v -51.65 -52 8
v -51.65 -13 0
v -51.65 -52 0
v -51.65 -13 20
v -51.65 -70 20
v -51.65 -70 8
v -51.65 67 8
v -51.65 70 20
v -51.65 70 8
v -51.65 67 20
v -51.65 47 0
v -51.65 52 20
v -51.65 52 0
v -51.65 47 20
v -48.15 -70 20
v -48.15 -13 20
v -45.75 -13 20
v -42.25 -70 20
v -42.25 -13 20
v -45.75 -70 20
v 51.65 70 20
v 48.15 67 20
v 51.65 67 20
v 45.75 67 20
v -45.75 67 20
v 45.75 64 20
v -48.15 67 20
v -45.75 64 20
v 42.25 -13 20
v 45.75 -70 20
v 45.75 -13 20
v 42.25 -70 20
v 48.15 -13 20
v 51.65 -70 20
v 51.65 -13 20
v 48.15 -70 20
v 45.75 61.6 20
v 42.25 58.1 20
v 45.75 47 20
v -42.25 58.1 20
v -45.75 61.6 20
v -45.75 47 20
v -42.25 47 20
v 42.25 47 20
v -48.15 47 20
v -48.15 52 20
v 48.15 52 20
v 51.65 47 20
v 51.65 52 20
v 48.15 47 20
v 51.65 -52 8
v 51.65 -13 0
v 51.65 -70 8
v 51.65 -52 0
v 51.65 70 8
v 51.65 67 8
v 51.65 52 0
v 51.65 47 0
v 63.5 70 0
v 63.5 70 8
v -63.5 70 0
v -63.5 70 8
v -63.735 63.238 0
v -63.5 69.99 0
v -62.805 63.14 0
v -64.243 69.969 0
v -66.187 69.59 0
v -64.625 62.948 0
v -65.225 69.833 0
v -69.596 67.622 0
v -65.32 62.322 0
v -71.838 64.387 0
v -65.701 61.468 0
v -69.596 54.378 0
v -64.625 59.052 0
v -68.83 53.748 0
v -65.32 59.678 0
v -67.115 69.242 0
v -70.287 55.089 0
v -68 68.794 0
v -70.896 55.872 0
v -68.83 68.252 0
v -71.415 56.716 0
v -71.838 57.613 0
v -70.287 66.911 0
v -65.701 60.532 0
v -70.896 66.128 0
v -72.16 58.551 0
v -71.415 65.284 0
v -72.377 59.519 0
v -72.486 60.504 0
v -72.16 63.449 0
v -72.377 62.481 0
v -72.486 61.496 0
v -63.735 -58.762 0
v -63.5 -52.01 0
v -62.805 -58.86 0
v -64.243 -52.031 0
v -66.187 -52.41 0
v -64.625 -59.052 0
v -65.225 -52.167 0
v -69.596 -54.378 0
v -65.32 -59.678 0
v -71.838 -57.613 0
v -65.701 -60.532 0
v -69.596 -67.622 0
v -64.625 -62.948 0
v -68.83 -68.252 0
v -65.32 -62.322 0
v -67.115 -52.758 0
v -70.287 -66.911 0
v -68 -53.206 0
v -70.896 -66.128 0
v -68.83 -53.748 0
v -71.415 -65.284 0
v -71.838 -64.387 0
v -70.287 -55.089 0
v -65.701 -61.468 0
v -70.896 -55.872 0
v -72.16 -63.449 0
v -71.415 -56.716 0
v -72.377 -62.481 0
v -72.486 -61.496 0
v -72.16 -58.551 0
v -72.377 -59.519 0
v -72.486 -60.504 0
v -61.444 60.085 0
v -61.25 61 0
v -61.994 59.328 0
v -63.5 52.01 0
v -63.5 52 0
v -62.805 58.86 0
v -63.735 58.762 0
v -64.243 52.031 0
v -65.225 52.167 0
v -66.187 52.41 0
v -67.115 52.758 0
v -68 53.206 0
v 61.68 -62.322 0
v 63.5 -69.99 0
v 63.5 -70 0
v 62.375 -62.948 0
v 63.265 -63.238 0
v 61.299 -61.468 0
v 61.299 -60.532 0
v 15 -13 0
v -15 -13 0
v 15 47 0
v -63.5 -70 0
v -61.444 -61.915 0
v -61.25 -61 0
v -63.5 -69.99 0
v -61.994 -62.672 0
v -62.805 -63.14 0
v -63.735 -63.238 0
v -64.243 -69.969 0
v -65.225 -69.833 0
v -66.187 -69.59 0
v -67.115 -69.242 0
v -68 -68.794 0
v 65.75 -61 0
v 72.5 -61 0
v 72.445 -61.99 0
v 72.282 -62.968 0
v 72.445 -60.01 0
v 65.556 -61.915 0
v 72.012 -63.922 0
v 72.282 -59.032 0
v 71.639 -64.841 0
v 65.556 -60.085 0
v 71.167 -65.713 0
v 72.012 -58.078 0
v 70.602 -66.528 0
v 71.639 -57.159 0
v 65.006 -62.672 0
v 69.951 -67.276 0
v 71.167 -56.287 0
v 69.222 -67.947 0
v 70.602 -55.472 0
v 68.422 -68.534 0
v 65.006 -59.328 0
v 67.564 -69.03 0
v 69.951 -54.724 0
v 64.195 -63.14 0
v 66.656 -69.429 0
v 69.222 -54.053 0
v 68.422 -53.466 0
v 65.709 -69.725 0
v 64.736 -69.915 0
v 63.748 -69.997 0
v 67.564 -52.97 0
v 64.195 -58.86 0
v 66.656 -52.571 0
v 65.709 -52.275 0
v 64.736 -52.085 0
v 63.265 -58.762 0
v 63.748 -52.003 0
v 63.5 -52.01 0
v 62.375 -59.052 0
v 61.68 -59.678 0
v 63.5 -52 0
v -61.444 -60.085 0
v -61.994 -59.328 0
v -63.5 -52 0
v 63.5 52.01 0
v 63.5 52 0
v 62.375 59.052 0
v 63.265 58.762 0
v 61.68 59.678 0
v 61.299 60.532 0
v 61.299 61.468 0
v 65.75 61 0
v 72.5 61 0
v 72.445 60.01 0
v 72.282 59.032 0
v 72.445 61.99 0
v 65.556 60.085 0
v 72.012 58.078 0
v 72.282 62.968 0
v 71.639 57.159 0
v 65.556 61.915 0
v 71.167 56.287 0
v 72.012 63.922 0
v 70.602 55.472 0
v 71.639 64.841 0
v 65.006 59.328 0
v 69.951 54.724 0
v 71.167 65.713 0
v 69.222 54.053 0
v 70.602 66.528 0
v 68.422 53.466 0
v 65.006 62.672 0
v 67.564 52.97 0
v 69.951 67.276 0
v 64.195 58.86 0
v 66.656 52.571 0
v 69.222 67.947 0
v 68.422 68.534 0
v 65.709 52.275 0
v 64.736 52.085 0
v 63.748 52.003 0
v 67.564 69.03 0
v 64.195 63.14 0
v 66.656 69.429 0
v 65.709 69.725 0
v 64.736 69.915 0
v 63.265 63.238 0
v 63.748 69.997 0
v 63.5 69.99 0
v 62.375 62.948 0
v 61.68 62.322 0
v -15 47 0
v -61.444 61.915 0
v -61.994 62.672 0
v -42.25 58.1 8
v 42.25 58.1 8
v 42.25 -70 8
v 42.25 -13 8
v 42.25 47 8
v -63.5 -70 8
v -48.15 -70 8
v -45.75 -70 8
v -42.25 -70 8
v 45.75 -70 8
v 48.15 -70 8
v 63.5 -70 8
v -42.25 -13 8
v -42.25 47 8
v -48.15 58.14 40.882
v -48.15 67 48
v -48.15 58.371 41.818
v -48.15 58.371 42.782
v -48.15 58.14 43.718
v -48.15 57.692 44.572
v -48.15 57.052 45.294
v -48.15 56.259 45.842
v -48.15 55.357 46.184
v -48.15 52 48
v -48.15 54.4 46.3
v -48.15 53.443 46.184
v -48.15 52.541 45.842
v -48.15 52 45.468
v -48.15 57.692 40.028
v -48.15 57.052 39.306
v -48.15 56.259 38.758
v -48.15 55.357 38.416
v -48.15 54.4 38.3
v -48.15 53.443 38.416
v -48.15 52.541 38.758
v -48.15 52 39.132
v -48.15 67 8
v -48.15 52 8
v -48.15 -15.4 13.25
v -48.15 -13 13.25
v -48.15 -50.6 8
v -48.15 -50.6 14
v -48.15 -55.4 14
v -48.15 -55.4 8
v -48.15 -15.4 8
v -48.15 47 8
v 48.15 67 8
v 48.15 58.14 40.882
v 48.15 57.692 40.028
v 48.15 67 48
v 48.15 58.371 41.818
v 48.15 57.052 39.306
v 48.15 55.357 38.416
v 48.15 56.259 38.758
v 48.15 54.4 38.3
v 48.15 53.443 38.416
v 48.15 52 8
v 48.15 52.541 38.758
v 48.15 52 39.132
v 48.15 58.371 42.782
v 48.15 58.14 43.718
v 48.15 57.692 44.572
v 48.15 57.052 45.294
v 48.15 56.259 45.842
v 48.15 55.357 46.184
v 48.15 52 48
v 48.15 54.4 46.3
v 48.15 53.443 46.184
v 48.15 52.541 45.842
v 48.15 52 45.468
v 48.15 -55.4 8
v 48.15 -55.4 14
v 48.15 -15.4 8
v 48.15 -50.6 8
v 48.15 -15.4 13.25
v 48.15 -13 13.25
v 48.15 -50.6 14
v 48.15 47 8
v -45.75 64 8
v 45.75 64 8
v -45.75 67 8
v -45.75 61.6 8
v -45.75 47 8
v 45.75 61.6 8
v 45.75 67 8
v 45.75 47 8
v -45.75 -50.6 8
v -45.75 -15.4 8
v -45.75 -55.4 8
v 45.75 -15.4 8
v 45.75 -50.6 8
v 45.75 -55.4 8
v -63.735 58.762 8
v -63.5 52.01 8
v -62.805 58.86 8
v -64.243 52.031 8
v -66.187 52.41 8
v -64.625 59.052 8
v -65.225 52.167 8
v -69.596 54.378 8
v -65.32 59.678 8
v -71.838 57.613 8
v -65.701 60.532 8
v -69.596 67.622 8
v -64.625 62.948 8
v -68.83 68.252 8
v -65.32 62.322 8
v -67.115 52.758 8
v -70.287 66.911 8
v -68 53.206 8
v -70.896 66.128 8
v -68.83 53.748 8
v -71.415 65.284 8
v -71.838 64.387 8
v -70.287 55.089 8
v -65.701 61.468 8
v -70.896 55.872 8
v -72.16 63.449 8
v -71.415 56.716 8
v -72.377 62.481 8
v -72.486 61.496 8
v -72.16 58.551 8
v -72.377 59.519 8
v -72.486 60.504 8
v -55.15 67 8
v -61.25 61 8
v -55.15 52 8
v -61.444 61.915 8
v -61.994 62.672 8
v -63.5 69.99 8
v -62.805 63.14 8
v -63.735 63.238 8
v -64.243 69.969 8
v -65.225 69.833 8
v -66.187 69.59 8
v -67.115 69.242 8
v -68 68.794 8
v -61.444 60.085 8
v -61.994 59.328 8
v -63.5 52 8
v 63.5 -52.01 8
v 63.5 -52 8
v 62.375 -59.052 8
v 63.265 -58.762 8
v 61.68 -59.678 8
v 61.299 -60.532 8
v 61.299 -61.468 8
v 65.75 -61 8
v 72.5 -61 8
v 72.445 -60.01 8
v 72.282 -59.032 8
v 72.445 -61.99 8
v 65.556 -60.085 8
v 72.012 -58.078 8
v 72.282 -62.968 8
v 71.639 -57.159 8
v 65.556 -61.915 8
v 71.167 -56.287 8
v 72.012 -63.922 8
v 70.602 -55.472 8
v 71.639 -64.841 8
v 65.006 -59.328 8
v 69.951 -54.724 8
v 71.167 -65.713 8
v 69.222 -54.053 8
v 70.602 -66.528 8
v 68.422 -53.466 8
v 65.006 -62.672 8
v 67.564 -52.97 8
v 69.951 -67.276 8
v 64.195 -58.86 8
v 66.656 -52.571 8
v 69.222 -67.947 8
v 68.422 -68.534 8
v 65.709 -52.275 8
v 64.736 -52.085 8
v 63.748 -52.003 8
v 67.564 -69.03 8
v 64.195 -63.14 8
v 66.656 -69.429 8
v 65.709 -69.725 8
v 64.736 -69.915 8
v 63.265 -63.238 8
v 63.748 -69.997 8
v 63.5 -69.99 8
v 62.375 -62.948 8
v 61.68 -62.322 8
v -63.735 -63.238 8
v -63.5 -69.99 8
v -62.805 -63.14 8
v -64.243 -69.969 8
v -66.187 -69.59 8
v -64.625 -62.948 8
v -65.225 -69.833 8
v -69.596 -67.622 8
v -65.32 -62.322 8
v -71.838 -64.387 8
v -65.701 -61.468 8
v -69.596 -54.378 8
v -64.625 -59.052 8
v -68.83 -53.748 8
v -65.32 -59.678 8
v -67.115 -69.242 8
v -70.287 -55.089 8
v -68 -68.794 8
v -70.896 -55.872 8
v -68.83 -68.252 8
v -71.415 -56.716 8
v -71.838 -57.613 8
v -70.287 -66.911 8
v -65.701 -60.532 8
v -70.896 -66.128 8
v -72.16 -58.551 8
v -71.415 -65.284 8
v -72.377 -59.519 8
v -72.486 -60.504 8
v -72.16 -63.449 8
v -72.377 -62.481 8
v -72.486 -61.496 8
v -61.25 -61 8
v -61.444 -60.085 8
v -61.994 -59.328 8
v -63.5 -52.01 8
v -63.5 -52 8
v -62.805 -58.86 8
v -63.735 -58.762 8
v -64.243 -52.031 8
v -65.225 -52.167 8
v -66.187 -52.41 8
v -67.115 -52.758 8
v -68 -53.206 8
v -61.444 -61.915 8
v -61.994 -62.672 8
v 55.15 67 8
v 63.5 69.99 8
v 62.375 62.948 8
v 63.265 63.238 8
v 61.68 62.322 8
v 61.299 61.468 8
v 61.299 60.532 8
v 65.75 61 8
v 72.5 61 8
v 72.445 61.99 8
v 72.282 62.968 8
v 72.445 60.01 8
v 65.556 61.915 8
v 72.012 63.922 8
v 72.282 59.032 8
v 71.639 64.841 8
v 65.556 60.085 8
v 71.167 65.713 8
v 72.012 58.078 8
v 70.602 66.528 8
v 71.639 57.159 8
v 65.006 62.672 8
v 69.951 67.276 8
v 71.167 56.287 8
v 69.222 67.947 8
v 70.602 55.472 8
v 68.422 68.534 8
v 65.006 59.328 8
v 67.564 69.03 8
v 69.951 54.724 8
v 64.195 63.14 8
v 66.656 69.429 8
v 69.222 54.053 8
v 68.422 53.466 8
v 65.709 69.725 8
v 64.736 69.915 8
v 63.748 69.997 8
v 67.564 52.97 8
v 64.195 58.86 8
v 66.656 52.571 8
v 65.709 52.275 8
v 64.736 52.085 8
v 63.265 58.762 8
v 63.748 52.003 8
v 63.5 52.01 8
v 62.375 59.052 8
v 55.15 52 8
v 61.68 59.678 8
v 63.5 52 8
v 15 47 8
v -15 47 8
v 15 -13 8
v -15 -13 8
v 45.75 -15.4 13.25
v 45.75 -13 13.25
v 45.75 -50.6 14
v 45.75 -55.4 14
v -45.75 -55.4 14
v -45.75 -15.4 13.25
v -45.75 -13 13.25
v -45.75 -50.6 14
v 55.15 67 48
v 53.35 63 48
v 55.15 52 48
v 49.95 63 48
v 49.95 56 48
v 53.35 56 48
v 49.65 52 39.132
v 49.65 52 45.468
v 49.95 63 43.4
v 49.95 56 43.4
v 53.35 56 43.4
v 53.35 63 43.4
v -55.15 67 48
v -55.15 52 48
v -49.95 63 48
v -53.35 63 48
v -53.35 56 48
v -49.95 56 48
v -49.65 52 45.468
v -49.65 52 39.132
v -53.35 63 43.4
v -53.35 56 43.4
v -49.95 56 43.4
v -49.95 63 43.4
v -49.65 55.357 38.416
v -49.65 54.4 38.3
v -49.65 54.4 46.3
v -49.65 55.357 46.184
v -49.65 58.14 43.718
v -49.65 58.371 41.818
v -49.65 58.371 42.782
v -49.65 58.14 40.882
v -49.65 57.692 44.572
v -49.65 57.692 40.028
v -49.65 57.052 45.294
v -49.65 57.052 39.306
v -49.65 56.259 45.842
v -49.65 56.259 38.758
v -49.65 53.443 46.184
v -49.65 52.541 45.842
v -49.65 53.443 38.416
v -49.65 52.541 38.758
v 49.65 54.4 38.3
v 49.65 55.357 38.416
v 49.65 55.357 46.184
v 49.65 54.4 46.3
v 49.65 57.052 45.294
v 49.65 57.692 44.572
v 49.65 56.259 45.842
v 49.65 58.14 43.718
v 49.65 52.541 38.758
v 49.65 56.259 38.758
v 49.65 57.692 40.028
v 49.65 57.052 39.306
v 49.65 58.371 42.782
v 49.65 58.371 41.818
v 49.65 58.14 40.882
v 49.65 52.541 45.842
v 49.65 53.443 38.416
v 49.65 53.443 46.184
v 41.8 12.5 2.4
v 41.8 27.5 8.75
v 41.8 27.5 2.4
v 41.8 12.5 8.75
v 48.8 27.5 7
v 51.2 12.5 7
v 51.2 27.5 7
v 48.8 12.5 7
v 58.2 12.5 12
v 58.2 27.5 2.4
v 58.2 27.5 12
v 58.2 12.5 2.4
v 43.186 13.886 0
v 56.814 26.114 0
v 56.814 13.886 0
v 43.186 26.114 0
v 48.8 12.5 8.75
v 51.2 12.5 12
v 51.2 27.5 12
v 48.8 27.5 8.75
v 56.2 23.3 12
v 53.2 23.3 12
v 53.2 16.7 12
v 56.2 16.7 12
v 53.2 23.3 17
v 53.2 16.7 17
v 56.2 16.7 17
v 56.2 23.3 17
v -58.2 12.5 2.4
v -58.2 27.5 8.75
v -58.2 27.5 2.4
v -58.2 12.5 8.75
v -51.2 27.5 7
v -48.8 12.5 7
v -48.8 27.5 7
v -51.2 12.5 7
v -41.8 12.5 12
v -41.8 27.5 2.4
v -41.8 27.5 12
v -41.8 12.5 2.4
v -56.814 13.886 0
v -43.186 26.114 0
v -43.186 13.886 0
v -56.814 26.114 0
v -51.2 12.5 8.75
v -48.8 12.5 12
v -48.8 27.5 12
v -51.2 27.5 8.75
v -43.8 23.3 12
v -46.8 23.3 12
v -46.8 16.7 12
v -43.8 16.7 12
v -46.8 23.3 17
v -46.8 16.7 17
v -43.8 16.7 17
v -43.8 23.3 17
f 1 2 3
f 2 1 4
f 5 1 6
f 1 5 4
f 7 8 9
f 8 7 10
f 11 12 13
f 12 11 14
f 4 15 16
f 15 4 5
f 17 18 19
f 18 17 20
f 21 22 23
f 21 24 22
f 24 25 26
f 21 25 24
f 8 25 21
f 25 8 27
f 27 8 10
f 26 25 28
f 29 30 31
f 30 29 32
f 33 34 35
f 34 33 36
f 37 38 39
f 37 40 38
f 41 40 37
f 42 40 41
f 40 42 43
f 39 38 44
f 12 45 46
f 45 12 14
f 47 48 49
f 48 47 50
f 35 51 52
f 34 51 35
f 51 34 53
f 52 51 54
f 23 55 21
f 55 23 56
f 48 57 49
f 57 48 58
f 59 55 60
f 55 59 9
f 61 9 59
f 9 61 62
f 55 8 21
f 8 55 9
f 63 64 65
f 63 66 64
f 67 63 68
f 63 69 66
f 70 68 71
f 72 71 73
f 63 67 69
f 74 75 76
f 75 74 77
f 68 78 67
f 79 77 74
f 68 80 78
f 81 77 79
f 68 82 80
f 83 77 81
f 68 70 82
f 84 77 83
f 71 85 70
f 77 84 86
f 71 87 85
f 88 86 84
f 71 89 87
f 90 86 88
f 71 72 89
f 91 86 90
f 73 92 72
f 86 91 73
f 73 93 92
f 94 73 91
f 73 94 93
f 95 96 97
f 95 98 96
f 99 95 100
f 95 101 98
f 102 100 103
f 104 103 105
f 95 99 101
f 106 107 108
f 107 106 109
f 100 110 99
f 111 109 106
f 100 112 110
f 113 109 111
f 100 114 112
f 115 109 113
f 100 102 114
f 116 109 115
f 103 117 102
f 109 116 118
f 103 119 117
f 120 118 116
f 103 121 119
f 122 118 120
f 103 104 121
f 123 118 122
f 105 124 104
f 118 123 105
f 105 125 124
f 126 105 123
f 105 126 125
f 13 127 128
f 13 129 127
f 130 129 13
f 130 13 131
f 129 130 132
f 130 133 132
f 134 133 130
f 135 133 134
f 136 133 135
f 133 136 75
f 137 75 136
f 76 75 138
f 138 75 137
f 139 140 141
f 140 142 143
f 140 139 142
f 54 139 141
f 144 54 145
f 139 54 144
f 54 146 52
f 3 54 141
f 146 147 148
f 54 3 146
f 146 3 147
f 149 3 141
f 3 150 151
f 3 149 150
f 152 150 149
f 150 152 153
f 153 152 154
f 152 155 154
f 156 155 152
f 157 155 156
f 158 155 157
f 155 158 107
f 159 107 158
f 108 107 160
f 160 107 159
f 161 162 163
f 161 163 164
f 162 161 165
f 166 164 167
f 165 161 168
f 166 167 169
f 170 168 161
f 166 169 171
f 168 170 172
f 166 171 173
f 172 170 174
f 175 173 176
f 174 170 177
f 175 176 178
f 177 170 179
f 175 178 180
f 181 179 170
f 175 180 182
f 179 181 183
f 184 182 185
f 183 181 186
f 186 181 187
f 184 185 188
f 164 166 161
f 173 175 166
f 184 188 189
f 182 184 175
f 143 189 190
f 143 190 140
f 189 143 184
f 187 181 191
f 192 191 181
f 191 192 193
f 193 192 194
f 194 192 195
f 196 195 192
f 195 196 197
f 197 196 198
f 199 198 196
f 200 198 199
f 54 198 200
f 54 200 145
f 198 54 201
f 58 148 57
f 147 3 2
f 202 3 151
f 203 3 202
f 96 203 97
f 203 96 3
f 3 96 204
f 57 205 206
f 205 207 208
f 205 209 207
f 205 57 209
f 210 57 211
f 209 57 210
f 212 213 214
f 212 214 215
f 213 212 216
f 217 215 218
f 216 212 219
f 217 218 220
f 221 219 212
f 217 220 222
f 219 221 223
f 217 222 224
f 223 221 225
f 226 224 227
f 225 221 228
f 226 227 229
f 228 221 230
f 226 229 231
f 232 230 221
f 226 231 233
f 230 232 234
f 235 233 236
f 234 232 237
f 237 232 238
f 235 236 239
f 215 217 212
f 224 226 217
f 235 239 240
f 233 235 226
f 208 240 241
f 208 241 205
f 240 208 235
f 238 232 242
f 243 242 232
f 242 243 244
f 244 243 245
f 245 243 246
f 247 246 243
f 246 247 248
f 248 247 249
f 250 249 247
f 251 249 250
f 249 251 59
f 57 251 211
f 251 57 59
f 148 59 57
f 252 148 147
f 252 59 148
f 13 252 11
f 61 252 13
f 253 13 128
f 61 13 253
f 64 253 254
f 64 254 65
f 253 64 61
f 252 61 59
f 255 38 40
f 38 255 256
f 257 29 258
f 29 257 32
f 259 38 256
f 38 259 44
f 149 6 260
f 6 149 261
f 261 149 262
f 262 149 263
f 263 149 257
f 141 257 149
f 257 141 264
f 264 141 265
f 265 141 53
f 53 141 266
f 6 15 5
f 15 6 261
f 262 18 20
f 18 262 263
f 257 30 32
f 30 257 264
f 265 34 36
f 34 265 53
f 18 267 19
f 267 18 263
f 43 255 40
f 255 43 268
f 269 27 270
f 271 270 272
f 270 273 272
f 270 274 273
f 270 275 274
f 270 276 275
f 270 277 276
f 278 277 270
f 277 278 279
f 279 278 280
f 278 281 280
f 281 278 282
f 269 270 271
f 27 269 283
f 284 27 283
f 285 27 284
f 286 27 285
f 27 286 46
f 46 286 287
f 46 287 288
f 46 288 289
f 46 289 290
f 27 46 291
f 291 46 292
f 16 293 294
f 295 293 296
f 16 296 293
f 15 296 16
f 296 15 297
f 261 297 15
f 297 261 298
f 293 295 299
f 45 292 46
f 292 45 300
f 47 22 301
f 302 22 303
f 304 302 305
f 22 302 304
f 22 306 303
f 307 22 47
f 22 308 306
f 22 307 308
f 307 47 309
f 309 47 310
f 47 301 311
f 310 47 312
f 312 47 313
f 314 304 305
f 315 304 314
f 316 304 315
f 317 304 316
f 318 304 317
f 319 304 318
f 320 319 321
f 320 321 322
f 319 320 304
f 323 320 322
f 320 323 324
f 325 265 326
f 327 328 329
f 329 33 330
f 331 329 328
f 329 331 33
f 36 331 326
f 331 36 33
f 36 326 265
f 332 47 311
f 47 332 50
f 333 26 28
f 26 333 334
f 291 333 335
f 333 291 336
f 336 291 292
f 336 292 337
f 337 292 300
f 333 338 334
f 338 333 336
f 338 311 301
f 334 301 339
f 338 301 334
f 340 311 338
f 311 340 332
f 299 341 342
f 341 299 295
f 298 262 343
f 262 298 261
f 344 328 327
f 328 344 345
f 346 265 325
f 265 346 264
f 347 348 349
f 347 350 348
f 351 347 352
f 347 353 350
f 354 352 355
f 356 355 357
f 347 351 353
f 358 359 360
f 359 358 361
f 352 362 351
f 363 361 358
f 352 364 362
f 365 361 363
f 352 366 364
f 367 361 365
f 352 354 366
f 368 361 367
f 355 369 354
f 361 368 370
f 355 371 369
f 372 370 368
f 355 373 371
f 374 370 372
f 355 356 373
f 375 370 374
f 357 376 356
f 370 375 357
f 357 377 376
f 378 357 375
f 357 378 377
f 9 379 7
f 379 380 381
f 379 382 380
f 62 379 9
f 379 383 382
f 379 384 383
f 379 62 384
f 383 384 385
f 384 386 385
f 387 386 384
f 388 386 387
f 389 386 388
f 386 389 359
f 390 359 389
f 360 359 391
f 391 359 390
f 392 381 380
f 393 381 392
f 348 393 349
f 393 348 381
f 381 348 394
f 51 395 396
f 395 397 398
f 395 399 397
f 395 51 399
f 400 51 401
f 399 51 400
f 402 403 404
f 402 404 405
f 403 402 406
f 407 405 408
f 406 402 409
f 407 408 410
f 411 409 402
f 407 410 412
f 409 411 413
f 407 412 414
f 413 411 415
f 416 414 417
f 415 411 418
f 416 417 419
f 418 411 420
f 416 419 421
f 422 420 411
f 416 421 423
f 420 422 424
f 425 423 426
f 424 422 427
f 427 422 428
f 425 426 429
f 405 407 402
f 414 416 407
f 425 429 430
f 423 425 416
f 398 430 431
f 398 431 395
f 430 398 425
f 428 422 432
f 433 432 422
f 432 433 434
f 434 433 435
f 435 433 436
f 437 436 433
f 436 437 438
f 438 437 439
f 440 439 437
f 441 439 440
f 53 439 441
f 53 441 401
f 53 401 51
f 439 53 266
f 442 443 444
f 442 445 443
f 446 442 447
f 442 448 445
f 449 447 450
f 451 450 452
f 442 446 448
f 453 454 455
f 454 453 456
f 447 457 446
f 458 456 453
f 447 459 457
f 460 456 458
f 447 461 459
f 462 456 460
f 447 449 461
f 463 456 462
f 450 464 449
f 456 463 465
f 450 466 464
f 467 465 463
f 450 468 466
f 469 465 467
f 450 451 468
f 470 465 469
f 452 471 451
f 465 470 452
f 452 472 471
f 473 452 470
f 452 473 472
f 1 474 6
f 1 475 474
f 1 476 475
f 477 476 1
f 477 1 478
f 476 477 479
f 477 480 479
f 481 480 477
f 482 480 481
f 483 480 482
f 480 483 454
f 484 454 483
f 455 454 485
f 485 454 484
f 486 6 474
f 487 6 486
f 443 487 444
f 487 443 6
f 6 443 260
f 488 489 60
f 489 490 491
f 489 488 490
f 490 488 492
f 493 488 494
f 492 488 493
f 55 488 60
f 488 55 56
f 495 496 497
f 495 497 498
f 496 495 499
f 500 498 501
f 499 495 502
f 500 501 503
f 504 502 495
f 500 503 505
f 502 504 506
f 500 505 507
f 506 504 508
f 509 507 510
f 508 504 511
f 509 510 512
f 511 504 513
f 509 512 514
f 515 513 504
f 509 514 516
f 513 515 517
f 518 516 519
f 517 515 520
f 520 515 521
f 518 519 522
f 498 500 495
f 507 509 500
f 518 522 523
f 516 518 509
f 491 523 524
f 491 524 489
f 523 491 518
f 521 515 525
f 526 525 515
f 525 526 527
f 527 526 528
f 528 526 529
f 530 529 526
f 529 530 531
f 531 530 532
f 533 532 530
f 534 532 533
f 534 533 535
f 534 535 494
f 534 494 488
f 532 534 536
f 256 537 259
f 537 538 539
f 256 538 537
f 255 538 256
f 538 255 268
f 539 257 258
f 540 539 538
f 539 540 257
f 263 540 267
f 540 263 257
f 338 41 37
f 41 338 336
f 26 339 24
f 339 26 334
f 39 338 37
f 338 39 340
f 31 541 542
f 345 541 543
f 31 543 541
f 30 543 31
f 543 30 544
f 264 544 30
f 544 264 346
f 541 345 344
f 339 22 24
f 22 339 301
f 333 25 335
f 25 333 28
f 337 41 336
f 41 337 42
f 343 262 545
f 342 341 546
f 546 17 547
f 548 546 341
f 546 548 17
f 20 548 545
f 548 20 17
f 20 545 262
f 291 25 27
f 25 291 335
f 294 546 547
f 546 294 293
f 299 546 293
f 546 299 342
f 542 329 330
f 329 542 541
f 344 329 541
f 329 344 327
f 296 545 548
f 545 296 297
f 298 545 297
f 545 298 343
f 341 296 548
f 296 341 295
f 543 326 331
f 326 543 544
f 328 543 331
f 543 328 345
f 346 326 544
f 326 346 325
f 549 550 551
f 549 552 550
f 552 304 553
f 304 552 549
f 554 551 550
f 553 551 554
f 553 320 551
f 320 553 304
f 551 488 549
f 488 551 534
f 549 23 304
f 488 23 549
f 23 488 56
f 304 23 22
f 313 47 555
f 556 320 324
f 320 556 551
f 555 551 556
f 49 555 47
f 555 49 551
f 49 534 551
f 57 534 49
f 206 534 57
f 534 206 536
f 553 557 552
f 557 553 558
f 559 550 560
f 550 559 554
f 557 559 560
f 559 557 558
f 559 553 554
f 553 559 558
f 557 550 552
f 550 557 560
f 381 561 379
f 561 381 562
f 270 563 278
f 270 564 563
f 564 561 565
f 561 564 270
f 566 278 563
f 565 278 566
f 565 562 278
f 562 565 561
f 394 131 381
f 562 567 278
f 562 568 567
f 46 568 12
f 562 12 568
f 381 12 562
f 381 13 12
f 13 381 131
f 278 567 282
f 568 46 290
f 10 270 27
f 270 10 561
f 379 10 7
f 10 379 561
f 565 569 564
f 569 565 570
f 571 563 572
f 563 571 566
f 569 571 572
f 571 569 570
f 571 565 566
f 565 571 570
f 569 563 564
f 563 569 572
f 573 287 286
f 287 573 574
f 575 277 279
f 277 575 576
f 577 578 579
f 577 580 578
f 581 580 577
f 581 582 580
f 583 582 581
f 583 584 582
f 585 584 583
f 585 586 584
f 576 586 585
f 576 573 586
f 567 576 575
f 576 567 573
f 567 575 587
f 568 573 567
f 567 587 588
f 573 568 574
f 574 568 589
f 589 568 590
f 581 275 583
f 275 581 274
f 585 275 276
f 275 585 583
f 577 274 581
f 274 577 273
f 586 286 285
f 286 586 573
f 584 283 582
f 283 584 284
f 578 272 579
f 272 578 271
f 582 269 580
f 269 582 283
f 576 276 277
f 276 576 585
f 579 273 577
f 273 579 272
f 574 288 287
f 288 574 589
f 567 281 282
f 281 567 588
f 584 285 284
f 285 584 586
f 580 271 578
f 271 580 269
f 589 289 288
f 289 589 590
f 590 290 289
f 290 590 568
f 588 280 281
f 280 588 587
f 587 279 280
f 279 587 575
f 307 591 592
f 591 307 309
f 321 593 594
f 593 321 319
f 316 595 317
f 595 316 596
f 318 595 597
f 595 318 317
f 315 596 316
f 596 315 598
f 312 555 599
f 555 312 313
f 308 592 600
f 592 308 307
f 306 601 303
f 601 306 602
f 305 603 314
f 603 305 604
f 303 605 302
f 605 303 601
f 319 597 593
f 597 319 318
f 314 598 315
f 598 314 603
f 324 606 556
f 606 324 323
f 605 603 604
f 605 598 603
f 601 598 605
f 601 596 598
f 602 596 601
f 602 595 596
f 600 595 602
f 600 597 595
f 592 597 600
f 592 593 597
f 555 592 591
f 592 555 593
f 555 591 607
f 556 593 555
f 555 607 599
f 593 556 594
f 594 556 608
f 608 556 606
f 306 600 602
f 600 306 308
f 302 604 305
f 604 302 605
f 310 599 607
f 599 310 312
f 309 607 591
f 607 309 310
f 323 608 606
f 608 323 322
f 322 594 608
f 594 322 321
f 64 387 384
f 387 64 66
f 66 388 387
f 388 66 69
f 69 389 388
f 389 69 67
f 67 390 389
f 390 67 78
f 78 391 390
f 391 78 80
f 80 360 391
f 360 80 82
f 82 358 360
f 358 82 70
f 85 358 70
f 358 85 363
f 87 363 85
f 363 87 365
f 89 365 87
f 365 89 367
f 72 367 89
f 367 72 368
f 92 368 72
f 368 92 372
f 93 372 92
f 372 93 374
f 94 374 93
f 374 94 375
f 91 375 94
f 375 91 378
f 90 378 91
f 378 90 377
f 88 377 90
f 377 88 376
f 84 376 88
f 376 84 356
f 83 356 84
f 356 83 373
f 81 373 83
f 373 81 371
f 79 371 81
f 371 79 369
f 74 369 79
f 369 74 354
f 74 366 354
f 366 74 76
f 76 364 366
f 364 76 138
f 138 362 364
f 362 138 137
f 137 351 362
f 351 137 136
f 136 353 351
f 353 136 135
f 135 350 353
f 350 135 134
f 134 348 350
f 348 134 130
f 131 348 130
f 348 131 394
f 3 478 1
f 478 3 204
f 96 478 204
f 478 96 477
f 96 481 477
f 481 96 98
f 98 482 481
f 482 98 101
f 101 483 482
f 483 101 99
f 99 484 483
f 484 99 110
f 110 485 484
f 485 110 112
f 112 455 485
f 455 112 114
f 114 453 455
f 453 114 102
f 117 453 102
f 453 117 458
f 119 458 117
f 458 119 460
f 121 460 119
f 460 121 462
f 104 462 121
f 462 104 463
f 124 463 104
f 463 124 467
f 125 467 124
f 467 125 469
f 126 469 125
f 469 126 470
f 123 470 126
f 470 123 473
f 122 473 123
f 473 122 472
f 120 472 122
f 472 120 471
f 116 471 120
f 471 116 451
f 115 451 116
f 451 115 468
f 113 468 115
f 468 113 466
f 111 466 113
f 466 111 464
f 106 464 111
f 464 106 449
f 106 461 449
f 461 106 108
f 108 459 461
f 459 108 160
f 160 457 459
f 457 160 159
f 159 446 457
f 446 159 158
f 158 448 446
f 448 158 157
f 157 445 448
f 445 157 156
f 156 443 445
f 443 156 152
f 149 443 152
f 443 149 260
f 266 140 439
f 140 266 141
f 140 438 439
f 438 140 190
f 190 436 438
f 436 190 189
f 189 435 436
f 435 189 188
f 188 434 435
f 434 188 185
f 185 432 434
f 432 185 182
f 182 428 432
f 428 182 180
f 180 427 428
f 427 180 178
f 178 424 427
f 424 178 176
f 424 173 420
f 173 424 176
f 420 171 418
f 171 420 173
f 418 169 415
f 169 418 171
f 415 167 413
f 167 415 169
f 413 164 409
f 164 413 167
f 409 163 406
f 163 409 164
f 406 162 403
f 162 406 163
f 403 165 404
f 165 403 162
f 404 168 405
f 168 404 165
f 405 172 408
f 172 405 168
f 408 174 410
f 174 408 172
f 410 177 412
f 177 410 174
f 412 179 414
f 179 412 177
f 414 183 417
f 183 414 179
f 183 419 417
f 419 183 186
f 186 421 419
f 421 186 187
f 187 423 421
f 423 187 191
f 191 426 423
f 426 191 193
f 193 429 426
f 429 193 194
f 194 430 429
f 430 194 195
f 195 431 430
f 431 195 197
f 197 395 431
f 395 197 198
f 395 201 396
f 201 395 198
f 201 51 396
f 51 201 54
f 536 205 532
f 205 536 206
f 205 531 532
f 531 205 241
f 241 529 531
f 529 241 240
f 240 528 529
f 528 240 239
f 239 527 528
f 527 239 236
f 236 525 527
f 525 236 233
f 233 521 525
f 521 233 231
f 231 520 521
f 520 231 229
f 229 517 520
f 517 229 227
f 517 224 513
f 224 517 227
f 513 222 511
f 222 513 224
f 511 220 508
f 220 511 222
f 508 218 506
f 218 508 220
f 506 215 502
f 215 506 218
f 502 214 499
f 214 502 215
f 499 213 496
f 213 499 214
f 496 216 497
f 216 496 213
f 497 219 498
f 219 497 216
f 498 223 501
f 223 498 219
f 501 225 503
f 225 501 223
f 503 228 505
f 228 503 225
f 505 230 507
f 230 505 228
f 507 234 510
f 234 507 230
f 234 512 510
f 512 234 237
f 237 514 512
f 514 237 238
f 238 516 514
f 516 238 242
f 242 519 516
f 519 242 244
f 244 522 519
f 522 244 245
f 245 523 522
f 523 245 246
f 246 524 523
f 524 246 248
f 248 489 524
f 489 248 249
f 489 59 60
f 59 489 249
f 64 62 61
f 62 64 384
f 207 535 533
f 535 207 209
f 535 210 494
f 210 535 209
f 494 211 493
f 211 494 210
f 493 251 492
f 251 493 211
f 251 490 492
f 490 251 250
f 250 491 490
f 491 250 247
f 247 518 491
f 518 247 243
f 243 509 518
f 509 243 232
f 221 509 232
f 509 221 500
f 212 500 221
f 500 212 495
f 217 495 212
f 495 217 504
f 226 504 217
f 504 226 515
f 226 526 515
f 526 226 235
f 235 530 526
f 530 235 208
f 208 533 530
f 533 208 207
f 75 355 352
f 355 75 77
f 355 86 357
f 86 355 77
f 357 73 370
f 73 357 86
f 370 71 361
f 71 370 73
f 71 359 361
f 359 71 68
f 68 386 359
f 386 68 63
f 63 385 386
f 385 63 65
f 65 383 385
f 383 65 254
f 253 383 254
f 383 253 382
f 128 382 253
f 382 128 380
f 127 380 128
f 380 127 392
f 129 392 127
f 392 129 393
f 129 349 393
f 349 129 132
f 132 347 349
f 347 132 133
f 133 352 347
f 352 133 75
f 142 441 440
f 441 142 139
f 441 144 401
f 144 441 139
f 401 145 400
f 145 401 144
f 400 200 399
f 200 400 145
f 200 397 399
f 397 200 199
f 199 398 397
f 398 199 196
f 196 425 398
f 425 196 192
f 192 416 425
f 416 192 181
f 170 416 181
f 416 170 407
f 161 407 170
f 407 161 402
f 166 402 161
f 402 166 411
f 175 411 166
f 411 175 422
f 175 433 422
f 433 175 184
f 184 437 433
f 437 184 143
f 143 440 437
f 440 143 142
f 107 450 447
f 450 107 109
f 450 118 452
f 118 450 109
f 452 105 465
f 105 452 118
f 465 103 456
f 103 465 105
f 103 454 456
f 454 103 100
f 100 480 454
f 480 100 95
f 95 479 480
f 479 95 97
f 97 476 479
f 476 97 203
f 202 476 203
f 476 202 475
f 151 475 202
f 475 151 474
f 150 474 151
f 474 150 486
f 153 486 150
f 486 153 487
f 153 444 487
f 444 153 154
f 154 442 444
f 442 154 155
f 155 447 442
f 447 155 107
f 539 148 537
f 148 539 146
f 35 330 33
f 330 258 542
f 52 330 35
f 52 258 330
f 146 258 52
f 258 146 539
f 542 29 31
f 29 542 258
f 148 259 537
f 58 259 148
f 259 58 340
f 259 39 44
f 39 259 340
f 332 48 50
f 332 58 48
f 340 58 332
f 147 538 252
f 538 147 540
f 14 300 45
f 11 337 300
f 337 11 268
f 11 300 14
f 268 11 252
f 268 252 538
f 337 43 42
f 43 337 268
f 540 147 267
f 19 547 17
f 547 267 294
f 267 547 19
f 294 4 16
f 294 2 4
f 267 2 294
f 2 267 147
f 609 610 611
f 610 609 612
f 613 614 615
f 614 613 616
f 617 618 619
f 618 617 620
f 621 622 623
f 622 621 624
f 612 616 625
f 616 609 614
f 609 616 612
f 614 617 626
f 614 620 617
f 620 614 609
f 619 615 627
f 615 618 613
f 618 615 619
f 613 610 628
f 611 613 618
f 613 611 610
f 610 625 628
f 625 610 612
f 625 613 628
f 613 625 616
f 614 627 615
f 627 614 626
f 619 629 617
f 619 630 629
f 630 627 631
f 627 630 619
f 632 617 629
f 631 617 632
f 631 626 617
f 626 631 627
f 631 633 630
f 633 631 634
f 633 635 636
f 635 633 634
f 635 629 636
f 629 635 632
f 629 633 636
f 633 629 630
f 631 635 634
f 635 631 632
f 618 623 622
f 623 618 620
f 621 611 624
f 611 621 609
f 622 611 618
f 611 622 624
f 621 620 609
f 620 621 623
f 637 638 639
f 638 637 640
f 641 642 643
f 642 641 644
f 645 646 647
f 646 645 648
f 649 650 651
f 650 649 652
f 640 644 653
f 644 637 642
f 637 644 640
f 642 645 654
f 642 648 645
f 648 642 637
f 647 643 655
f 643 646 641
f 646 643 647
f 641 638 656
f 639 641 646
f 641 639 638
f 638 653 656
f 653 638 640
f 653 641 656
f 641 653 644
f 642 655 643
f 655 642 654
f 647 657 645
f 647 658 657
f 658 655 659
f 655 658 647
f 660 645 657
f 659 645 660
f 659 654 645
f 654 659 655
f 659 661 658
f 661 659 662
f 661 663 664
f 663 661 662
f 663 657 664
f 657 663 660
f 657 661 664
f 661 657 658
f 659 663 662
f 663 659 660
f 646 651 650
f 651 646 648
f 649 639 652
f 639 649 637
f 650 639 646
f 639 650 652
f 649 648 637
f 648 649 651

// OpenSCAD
//variables, in mm
foot_width=145; //size of total object, width
foot_length=140;    //size of total object, length (y axis of printrbot)
leg_width=18;   //width of sticking-out-feet
frame_thick=2.4;  //thickness of metal printrbot frame
front_ledge=3;  //how much thickness in front of edge
protrude=3;     //how much the metal plates protrude past the side, i.e. the notch needed on the front
side_ledge=3.5;   //how much thickness on sides and inside
inside_width=91.5;    //space between metal walls, inside
lip=12;         //how tall to make the part that slides over the metal sides
lift=8;         //how thick of a baseplate
usb_thick=15;   //how thick usb strain relieft should be
usb_wide=35;    //width
usb_tall=41;    //height    
usb_w=11;       //width of usb plug
usb_h=8;        //height of usb plug
usb_y=102.45;  //center of plug, relative to front edge
usb_z=35;   //center of plug, relative to top of base plate
clip_h=45;  //how tall wrap around clip should be- top of base plate to bottom of groove
clip_split=5;  //where to split clip
clip_wide=15;   //width of clip
clip_groove=1.75;  //depth of groove on top of clip
clip_thick=7; //thickness of clip
tab_thick=3; //tab thickness, should be multiple of extrusion width
tab_wide=6.6; //tab width
tab_slop=.4;    //additional gab to have around slot for tab due to printer tolerances
tab_length=5;
gap_width=60;
gap_y=50;   //front edge of metal to middle of cutout
center_bar=30;
curve_40=2.35;
curve_80=5.25;
curve_120=6;

rivet1_z=34.3;
rivet1_y=12.6;
rivet2_z=27.75;
rivet2_y=113.5;
rivet_r=4;
rivet_thick=1.5;

m4_slot=4.5;
$fa=1;
$fs=1;

//intermediate values
front_yy=front_ledge+protrude+frame_thick+side_ledge;
side_xx=side_ledge*2+frame_thick;
inner_xx=inside_width+2*(frame_thick+side_ledge);

module rivet1()
{
    translate([-1*(inside_width/2+frame_thick),foot_length/2-front_ledge-rivet1_y,lift+rivet1_z])
    {
        rotate([0,90,0])
        {
            cylinder(h=2*rivet_thick, r1=rivet_r, r2=rivet_r, center=true);
        }
    }
}



module rivet1a()
{
    translate([1*(inside_width/2+frame_thick),foot_length/2-front_ledge-rivet1_y,lift+rivet1_z])
    {
        rotate([0,90,0])
        {
            cylinder(h=2*rivet_thick, r1=rivet_r, r2=rivet_r, center=true);
        }
    }
}



module rivet2()
{
    translate([-1*(inside_width/2+frame_thick),foot_length/2-front_ledge-rivet2_y,lift+rivet2_z])
    {
        rotate([0,90,0])
        {
            cylinder(h=2*rivet_thick, r1=rivet_r, r2=rivet_r, center=true);
        }
    }
}


//supports due to curve
module curve_adj()
{

union()
    {
        translate([-1*(inside_width/2)-frame_thick/2,foot_length/2-front_ledge-40,lift])
        {
        cube([frame_thick*2,frame_thick*2,curve_40*2],center=true);
        }
        translate([1*(inside_width/2)+frame_thick/2,foot_length/2-front_ledge-40,lift])
        {
        cube([frame_thick*2,frame_thick*2,curve_40*2],center=true);
        }
        translate([-1*(inside_width/2)-frame_thick/2,foot_length/2-front_ledge-80,lift])
        {
        cube([frame_thick*2,frame_thick*2,curve_80*2],center=true);
        }
        translate([1*(inside_width/2)+frame_thick/2,foot_length/2-front_ledge-80,lift])
        {
        cube([frame_thick*2,frame_thick*2,curve_80*2],center=true);
        }
        translate([-1*(inside_width/2)-frame_thick/2,foot_length/2-front_ledge-120,lift])
        {
        cube([frame_thick*2,frame_thick*2,curve_120*2],center=true);
        }
        translate([1*(inside_width/2)+frame_thick/2,foot_length/2-front_ledge-120,lift])
        {
        cube([frame_thick*2,frame_thick*2,curve_120*2],center=true);
        }
    }
}
//baseplate
module base()
{
    linear_extrude(height=lift)
    union()
    {
    square(size=[(frame_thick+side_ledge)*2+inside_width,foot_length], center=true);
    translate([0,-1*((foot_length-leg_width)/2)])
        {
            difference()
            {
                union()
                {
                    //legs
                    square([foot_width-leg_width,leg_width],center=true);
                    translate([foot_width/2-leg_width/2,0])
                    {
                        circle(r=leg_width/2,center=true);
                    }
                    translate([-1*(foot_width/2-leg_width/2),0])
                    {
                        circle(r=leg_width/2,center=true);
                    }
                }
                translate([foot_width/2-leg_width/2,0])
                {
                    circle(r=m4_slot/2,center=true);
                }
                translate([-1*(foot_width/2-leg_width/2),0])
                {
                    circle(r=m4_slot/2,center=true);
                }
            }
        }
    translate([0,1*((foot_length-leg_width)/2)])
        {
            //legs
            difference()
            {
                union()
                {
                    square([foot_width-leg_width,leg_width],center=true);
                    translate([foot_width/2-leg_width/2,0])
                    {
                        circle(r=leg_width/2,center=true);
                    }
                    translate([-1*(foot_width/2-leg_width/2),0])
                    {
                        circle(r=leg_width/2,center=true);
                    }
                }
                translate([foot_width/2-leg_width/2,0])
                {
                    circle(r=m4_slot/2,center=true);
                }
                translate([-1*(foot_width/2-leg_width/2),0])
                {
                    circle(r=m4_slot/2,center=true);
                }
            }
        }
    }
}
module slot()
{
    difference()
    {
        
        union()
        {
            //front prism
            translate([0,(foot_length-front_yy)/2,(lip+lift)/2])
            {
            cube([(frame_thick+side_ledge)*2+inside_width,front_yy,lip+lift],center=true);
            }
            translate([(inner_xx-side_xx)/2,0,(lip+lift)/2])
            {
            cube([side_xx,foot_length,lip+lift],center=true);
            }
            translate([-1*(inner_xx-side_xx)/2,0,(lip+lift)/2])
            {
            cube([side_xx,foot_length,lip+lift],center=true);
            }
        }
            
        
        difference()
        {
            union()
            {
                translate([0,((foot_length)/2)-front_ledge-frame_thick/2-protrude,(.5*lip+lift+.5)])
                {
                cube([(inside_width+frame_thick*2),frame_thick,lip+1],center=true);//1 so that faces don't overlap
                }
                translate([(inner_xx-side_xx)/2,-1*(front_ledge),(.5*lip+lift+.5)])
                {
                cube([frame_thick,foot_length,lip+1],center=true);
                }
                translate([-1*(inner_xx-side_xx)/2,-1*(front_ledge),(.5*lip+lift+.5)])
                {
                cube([frame_thick,foot_length,lip+1],center=true);
                }
            }
            curve_adj();
        }
    }
}

module usb()
{
    difference()
    {
        difference()
        {
            translate([-1*(frame_thick+(inside_width+usb_thick)/2),(foot_length/2)-front_ledge-usb_y,(usb_tall+lift)/2])
            {
            cube([usb_thick,usb_wide,usb_tall+lift],center=true);
            }
            translate([-1*(frame_thick+(inside_width+usb_thick)/2),(foot_length/2)-front_ledge-usb_y,lift+usb_z])
            {
            cube([usb_thick*2,usb_w,usb_h],center=true);
            }
        }
    //knock off edges
        union()
        {
            translate([-1*(frame_thick+inside_width/2+usb_thick),(foot_length/2)-front_ledge-usb_y+usb_wide/2,(usb_tall+lift)/2])
            {
                rotate([0,0,45])
                {
                    cube([usb_thick*.3,usb_thick*.3,usb_tall+lift*2], center=true);
                }
            }
            //knock off edges
            translate([-1*(frame_thick+inside_width/2+usb_thick),(foot_length/2)-front_ledge-usb_y-usb_wide/2,(usb_tall+lift)/2])
            {
                rotate([0,0,45])
                {
                    cube([usb_thick*.3,usb_thick*.3,usb_tall+lift*2], center=true);
                }
            }
        }
    }
}

module post()
{
    difference()
    {
        translate([inside_width/2+frame_thick+clip_thick/2,foot_length/2-front_ledge-clip_wide/2,lift+(clip_h-clip_split)/2-lift/2])
        {
            cube([clip_thick,clip_wide,clip_h-clip_split+lift],center=true);
        }
        translate([1*(inside_width/2+frame_thick+clip_thick/2),foot_length/2-front_ledge-clip_wide/2,lift+(clip_h-clip_split)])
        {
            cube([tab_thick+tab_slop,tab_wide+tab_slop,(tab_length-tab_slop)*2],center=true);
        }
    }
    difference()
    {
        translate([-1*(inside_width/2+frame_thick+clip_thick/2),foot_length/2-front_ledge-clip_wide/2,lift+(clip_h-clip_split)/2-lift/2])
        {
            cube([clip_thick,clip_wide,clip_h-clip_split+lift],center=true);
        }
        translate([-1*(inside_width/2+frame_thick+clip_thick/2),foot_length/2-front_ledge-clip_wide/2,lift+(clip_h-clip_split)])
        {
            cube([tab_thick+tab_slop,tab_wide+tab_slop,(tab_length-tab_slop)*2],center=true);
        }
    }
}


module air_cut()
{
    translate([inside_width/2+center_bar/2,foot_length/2-front_ledge-gap_y,0])
    {
    cube([(inside_width),gap_width,lift+lip*10], center=true);
    }
    translate([-1*(inside_width/2+center_bar/2),foot_length/2-front_ledge-gap_y,0])
    {
    cube([(inside_width),gap_width,lift+lip*10], center=true);
    }
}



        /*difference()
            {
                usb();
                rivet2();
                translate([0,0,lift+200])
                {
                    cube([400,400,400],center=true);
                }
            }*/

        difference()
        {
            union()
            {

                base();
                slot();
                difference()
                {
                    post();
                    union()
                    {
                        rivet1();
                        rivet1a();
                    }
                }
            }
            air_cut();
        }

module clip()
{
    difference()
    {
        union()
        {
        translate([200,0,clip_thick/2])
            {
                //base of clip
            cube([clip_thick*2+frame_thick,clip_wide,clip_thick],center=true);
            }
        translate([200-(clip_thick*2+frame_thick)/2+clip_thick/2,0,clip_thick/2+clip_groove/2])
            {
                //short bit
            cube([clip_thick,clip_wide,clip_thick+clip_groove],center=true);
            }
        translate([200+(clip_thick*2+frame_thick)/2-clip_thick/2,0,clip_thick/2+clip_split/2])
            {//tall bit
            cube([clip_thick,clip_wide,clip_thick+clip_split],center=true);
            }
        translate([200+(clip_thick*2+frame_thick)/2-clip_thick/2,0,clip_split+clip_thick])
            {//pin
            cube([tab_thick,tab_wide,tab_length*2],center=true);
            }
        }
        union()
        {
            translate([200+clip_thick+frame_thick/2,0,0])
            {
                //tall side
                rotate([0,30,0])
                {   
                    cube([frame_thick,clip_wide*2,frame_thick*2],center=true);
                }
            }
            translate([200-clip_thick-frame_thick/2,0,0])
            {
                //short side
                rotate([0,60,0])
                {   
                    cube([frame_thick*2,clip_wide*2,frame_thick],center=true);
                }
            }
            translate([200,clip_wide/2,0])
            {
                //other sides
                rotate([60,0,0])
                {   
                    cube([clip_wide*2,frame_thick*2,frame_thick],center=true);
                }
            }
            translate([200,-clip_wide/2,0])
            {
                //other sides
                rotate([30,0,0])
                {   
                    cube([clip_wide*2,frame_thick,frame_thick*2],center=true);
                }
            }
        }
    }
}
//clip();

translate([-150,20,0]) clip();
translate([-250,20,0]) clip();
